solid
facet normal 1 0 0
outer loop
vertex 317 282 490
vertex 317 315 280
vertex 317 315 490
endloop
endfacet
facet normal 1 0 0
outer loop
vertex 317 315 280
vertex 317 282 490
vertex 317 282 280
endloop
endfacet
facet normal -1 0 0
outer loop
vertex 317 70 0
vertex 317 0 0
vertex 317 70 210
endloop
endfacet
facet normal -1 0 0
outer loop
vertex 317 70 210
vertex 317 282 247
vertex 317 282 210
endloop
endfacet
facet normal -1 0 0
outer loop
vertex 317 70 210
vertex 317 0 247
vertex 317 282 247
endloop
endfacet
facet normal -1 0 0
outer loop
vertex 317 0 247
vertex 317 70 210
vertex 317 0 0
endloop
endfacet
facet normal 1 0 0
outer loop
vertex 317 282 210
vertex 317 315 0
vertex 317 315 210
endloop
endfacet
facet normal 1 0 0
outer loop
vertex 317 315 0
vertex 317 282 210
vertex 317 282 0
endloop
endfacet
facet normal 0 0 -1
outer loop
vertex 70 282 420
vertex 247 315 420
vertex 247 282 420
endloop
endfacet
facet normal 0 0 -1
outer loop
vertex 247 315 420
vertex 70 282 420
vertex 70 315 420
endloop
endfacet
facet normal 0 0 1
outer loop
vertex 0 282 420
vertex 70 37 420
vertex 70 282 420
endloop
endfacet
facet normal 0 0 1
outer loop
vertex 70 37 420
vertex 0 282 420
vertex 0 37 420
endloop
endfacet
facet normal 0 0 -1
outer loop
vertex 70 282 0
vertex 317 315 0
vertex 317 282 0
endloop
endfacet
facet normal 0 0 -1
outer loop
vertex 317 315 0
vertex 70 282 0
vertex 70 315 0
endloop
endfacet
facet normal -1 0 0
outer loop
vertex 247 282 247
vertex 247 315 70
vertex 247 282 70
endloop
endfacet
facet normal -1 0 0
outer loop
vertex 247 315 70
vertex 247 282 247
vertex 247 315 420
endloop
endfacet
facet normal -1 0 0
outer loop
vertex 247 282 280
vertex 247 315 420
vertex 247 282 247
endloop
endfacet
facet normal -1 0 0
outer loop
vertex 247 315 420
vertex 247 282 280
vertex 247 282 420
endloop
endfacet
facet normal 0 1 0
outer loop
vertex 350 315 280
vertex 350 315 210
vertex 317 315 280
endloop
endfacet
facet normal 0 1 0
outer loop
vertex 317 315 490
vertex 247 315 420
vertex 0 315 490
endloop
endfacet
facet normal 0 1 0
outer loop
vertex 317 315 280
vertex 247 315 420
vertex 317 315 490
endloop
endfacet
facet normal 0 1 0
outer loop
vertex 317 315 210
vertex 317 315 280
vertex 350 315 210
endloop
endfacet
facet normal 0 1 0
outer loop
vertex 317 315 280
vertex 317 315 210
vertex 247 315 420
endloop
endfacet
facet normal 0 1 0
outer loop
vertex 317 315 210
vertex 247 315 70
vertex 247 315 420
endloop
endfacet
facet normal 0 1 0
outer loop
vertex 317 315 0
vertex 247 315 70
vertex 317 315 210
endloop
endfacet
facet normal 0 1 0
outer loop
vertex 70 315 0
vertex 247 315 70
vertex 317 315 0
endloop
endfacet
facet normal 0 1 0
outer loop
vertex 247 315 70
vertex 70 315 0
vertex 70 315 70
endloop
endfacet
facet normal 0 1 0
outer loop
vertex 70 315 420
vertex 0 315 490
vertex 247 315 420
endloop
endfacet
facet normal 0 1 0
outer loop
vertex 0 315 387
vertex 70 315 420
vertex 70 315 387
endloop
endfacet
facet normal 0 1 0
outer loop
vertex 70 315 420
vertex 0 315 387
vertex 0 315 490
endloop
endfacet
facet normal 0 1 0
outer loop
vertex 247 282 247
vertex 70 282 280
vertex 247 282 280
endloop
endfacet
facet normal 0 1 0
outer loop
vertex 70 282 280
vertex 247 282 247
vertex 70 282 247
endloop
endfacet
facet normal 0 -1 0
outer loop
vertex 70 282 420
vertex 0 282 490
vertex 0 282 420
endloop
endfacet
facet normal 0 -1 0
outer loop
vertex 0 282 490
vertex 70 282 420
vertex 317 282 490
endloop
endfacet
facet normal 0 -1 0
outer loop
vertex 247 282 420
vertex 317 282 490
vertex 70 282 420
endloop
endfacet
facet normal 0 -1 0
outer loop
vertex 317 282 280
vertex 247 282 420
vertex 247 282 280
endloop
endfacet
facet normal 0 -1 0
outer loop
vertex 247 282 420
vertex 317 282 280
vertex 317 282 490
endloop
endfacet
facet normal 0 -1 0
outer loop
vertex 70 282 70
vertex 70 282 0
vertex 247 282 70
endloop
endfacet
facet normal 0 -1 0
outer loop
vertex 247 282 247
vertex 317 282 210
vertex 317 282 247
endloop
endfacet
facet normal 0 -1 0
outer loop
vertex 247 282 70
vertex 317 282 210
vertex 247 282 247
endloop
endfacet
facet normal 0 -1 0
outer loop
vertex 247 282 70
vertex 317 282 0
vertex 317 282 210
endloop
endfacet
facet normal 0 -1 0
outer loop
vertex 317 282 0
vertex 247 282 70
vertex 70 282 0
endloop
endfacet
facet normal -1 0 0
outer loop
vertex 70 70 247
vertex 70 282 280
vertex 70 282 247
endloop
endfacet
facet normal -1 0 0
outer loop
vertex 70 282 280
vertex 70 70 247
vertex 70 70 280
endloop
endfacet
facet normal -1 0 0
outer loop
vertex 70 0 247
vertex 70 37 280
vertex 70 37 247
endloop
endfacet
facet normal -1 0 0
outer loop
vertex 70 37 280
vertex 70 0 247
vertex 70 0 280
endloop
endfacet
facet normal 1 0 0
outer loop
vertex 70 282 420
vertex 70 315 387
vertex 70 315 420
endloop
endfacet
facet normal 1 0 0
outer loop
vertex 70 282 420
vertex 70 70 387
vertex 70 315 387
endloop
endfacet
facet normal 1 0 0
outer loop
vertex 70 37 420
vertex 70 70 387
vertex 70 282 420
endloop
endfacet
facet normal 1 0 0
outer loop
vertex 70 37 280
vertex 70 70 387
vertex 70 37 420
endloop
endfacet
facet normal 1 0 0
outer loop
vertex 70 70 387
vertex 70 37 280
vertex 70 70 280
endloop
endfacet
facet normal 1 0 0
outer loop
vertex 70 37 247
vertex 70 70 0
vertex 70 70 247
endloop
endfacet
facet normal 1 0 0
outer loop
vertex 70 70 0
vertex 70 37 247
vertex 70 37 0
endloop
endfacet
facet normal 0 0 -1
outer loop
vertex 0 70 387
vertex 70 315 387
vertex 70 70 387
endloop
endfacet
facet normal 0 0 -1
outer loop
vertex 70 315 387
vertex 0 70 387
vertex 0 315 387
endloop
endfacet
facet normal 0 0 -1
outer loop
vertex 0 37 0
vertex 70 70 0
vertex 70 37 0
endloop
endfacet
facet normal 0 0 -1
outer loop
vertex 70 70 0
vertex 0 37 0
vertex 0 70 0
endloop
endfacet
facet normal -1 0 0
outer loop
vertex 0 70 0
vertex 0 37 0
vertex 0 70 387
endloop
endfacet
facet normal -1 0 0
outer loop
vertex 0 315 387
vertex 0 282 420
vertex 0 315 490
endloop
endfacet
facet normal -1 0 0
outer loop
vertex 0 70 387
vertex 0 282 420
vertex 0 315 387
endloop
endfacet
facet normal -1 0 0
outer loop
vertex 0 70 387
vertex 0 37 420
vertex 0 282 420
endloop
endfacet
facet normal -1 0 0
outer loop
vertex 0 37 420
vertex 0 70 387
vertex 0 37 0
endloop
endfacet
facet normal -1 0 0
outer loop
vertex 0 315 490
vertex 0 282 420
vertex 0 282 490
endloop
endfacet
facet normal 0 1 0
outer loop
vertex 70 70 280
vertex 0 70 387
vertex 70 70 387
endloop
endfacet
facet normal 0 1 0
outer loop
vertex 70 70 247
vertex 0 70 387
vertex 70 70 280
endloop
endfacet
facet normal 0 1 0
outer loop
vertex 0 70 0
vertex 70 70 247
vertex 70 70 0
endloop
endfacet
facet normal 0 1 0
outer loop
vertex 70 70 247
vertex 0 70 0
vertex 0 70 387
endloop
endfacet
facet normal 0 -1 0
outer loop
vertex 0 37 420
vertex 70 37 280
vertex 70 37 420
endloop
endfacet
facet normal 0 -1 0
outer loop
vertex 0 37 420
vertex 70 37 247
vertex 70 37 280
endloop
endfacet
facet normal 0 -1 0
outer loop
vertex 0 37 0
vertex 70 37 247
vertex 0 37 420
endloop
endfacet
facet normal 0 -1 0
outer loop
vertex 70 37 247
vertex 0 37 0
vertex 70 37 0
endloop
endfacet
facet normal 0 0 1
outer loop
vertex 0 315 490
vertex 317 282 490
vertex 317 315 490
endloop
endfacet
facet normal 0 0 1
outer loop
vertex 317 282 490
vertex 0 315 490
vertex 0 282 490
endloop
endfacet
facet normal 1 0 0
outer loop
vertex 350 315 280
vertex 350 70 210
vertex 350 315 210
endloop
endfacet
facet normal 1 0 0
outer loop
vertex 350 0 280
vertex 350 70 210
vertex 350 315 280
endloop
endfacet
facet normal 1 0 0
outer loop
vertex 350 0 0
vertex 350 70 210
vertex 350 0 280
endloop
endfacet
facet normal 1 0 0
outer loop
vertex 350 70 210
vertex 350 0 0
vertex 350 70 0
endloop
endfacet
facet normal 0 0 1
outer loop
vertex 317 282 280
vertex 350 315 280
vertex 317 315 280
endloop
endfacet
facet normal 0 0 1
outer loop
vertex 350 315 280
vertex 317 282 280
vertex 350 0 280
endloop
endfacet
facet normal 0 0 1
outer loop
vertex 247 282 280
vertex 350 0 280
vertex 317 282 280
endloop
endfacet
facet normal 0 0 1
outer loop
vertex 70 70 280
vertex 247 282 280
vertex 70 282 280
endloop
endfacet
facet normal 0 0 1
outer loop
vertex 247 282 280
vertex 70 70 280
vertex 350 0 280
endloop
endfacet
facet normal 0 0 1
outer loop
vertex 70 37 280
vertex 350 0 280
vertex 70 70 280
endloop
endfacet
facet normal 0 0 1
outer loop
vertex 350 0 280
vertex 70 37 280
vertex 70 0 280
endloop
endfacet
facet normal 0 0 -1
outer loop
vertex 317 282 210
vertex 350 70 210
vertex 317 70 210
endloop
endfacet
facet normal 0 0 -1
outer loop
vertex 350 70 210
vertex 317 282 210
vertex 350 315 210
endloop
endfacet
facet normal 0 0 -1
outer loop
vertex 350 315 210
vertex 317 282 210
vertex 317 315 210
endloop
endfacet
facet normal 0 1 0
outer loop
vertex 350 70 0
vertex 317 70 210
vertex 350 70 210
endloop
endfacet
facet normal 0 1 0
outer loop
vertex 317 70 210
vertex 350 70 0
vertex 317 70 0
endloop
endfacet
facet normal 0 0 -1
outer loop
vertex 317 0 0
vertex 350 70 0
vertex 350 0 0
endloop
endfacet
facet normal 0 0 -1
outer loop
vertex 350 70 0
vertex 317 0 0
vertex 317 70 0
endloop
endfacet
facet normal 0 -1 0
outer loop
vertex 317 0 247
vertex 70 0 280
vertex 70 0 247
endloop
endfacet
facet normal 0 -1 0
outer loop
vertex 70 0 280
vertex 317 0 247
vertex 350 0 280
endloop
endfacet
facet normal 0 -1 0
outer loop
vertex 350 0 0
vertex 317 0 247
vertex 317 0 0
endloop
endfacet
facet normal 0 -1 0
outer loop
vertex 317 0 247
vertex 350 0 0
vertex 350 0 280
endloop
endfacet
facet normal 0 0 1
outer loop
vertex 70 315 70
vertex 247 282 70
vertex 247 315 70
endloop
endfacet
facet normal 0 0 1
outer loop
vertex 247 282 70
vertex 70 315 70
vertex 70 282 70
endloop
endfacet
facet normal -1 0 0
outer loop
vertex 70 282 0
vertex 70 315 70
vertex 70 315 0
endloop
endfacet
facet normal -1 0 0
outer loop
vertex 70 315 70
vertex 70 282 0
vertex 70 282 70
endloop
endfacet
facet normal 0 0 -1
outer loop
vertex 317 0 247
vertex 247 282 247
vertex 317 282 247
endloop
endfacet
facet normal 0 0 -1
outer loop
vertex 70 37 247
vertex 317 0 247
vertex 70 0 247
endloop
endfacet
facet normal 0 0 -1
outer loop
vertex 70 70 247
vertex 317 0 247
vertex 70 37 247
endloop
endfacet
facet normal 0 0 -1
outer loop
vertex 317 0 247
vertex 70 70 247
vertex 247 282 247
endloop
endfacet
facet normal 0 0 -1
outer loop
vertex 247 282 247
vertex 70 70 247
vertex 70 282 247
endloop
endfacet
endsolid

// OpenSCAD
w = 70;
h = 33;

// a
translate([5*w-h-w, 4.5*w-h, 0]) {
  cube([w, h, 6*w]);
}

// b
translate([0, w-h, 0]) {
  cube([w, h, 6*w-h]);
}

// c
translate([0, 4.5*w-h, 6*w]) {
  cube([5*w-h, h, w]);
}

// d
translate([5*w-h, w, 3*w]) {
  cube([h, 3.5*w, w]);
}

// e
translate([0, w-h, 6*w-h]) {
  cube([w, 4.5*w-(w-h), h]);
}

// f
translate([5*w-h, 0, 0]) {
    cube([h, w, 4*w]);
}

// g
translate([w, 4.5*w-h, 0]) {
    cube([3*w-h, h, w]);
}

// h
translate([w, 0, 4*w-h]) {
    cube([4*w-h, 4.5*w-h, h]);
}

// speaker 
//color([0,0,0]) {
//    translate([w+7, 4.5*w-h-280, 4*w]) {
//        cube([199, 280, 342]);
//    }
//}

// waxinelichtjes
/*
color([1,1,1]) {
    translate([w/2, 1.5*w, 6*w]) {
        cylinder(15, 20, 20);
    }
    translate([4.5*w, w, 4*w]) {
        cylinder(15, 20, 20);
    }
}
*/
